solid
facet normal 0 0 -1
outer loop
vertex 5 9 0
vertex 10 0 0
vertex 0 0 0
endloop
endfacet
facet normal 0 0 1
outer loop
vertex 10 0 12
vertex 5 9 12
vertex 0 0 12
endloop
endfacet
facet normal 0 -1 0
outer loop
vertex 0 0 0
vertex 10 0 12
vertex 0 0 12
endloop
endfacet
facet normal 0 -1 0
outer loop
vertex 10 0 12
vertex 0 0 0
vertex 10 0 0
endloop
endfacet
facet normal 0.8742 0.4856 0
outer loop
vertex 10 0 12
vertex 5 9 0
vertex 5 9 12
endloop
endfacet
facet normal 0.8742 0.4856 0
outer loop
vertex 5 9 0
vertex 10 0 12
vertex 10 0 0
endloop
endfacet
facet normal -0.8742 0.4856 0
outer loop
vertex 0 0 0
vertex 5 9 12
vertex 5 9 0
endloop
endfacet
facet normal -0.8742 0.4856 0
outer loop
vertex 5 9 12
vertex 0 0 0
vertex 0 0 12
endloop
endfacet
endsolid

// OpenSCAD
// A closed prism with quad side faces, to check faces of more than three
// vertices and the winding rule together.
polyhedron(
  points = [[0,0,0],[10,0,0],[5,9,0], [0,0,12],[10,0,12],[5,9,12]],
  faces  = [[0,1,2], [3,5,4], [0,3,4,1], [1,4,5,2], [2,5,3,0]]
);
